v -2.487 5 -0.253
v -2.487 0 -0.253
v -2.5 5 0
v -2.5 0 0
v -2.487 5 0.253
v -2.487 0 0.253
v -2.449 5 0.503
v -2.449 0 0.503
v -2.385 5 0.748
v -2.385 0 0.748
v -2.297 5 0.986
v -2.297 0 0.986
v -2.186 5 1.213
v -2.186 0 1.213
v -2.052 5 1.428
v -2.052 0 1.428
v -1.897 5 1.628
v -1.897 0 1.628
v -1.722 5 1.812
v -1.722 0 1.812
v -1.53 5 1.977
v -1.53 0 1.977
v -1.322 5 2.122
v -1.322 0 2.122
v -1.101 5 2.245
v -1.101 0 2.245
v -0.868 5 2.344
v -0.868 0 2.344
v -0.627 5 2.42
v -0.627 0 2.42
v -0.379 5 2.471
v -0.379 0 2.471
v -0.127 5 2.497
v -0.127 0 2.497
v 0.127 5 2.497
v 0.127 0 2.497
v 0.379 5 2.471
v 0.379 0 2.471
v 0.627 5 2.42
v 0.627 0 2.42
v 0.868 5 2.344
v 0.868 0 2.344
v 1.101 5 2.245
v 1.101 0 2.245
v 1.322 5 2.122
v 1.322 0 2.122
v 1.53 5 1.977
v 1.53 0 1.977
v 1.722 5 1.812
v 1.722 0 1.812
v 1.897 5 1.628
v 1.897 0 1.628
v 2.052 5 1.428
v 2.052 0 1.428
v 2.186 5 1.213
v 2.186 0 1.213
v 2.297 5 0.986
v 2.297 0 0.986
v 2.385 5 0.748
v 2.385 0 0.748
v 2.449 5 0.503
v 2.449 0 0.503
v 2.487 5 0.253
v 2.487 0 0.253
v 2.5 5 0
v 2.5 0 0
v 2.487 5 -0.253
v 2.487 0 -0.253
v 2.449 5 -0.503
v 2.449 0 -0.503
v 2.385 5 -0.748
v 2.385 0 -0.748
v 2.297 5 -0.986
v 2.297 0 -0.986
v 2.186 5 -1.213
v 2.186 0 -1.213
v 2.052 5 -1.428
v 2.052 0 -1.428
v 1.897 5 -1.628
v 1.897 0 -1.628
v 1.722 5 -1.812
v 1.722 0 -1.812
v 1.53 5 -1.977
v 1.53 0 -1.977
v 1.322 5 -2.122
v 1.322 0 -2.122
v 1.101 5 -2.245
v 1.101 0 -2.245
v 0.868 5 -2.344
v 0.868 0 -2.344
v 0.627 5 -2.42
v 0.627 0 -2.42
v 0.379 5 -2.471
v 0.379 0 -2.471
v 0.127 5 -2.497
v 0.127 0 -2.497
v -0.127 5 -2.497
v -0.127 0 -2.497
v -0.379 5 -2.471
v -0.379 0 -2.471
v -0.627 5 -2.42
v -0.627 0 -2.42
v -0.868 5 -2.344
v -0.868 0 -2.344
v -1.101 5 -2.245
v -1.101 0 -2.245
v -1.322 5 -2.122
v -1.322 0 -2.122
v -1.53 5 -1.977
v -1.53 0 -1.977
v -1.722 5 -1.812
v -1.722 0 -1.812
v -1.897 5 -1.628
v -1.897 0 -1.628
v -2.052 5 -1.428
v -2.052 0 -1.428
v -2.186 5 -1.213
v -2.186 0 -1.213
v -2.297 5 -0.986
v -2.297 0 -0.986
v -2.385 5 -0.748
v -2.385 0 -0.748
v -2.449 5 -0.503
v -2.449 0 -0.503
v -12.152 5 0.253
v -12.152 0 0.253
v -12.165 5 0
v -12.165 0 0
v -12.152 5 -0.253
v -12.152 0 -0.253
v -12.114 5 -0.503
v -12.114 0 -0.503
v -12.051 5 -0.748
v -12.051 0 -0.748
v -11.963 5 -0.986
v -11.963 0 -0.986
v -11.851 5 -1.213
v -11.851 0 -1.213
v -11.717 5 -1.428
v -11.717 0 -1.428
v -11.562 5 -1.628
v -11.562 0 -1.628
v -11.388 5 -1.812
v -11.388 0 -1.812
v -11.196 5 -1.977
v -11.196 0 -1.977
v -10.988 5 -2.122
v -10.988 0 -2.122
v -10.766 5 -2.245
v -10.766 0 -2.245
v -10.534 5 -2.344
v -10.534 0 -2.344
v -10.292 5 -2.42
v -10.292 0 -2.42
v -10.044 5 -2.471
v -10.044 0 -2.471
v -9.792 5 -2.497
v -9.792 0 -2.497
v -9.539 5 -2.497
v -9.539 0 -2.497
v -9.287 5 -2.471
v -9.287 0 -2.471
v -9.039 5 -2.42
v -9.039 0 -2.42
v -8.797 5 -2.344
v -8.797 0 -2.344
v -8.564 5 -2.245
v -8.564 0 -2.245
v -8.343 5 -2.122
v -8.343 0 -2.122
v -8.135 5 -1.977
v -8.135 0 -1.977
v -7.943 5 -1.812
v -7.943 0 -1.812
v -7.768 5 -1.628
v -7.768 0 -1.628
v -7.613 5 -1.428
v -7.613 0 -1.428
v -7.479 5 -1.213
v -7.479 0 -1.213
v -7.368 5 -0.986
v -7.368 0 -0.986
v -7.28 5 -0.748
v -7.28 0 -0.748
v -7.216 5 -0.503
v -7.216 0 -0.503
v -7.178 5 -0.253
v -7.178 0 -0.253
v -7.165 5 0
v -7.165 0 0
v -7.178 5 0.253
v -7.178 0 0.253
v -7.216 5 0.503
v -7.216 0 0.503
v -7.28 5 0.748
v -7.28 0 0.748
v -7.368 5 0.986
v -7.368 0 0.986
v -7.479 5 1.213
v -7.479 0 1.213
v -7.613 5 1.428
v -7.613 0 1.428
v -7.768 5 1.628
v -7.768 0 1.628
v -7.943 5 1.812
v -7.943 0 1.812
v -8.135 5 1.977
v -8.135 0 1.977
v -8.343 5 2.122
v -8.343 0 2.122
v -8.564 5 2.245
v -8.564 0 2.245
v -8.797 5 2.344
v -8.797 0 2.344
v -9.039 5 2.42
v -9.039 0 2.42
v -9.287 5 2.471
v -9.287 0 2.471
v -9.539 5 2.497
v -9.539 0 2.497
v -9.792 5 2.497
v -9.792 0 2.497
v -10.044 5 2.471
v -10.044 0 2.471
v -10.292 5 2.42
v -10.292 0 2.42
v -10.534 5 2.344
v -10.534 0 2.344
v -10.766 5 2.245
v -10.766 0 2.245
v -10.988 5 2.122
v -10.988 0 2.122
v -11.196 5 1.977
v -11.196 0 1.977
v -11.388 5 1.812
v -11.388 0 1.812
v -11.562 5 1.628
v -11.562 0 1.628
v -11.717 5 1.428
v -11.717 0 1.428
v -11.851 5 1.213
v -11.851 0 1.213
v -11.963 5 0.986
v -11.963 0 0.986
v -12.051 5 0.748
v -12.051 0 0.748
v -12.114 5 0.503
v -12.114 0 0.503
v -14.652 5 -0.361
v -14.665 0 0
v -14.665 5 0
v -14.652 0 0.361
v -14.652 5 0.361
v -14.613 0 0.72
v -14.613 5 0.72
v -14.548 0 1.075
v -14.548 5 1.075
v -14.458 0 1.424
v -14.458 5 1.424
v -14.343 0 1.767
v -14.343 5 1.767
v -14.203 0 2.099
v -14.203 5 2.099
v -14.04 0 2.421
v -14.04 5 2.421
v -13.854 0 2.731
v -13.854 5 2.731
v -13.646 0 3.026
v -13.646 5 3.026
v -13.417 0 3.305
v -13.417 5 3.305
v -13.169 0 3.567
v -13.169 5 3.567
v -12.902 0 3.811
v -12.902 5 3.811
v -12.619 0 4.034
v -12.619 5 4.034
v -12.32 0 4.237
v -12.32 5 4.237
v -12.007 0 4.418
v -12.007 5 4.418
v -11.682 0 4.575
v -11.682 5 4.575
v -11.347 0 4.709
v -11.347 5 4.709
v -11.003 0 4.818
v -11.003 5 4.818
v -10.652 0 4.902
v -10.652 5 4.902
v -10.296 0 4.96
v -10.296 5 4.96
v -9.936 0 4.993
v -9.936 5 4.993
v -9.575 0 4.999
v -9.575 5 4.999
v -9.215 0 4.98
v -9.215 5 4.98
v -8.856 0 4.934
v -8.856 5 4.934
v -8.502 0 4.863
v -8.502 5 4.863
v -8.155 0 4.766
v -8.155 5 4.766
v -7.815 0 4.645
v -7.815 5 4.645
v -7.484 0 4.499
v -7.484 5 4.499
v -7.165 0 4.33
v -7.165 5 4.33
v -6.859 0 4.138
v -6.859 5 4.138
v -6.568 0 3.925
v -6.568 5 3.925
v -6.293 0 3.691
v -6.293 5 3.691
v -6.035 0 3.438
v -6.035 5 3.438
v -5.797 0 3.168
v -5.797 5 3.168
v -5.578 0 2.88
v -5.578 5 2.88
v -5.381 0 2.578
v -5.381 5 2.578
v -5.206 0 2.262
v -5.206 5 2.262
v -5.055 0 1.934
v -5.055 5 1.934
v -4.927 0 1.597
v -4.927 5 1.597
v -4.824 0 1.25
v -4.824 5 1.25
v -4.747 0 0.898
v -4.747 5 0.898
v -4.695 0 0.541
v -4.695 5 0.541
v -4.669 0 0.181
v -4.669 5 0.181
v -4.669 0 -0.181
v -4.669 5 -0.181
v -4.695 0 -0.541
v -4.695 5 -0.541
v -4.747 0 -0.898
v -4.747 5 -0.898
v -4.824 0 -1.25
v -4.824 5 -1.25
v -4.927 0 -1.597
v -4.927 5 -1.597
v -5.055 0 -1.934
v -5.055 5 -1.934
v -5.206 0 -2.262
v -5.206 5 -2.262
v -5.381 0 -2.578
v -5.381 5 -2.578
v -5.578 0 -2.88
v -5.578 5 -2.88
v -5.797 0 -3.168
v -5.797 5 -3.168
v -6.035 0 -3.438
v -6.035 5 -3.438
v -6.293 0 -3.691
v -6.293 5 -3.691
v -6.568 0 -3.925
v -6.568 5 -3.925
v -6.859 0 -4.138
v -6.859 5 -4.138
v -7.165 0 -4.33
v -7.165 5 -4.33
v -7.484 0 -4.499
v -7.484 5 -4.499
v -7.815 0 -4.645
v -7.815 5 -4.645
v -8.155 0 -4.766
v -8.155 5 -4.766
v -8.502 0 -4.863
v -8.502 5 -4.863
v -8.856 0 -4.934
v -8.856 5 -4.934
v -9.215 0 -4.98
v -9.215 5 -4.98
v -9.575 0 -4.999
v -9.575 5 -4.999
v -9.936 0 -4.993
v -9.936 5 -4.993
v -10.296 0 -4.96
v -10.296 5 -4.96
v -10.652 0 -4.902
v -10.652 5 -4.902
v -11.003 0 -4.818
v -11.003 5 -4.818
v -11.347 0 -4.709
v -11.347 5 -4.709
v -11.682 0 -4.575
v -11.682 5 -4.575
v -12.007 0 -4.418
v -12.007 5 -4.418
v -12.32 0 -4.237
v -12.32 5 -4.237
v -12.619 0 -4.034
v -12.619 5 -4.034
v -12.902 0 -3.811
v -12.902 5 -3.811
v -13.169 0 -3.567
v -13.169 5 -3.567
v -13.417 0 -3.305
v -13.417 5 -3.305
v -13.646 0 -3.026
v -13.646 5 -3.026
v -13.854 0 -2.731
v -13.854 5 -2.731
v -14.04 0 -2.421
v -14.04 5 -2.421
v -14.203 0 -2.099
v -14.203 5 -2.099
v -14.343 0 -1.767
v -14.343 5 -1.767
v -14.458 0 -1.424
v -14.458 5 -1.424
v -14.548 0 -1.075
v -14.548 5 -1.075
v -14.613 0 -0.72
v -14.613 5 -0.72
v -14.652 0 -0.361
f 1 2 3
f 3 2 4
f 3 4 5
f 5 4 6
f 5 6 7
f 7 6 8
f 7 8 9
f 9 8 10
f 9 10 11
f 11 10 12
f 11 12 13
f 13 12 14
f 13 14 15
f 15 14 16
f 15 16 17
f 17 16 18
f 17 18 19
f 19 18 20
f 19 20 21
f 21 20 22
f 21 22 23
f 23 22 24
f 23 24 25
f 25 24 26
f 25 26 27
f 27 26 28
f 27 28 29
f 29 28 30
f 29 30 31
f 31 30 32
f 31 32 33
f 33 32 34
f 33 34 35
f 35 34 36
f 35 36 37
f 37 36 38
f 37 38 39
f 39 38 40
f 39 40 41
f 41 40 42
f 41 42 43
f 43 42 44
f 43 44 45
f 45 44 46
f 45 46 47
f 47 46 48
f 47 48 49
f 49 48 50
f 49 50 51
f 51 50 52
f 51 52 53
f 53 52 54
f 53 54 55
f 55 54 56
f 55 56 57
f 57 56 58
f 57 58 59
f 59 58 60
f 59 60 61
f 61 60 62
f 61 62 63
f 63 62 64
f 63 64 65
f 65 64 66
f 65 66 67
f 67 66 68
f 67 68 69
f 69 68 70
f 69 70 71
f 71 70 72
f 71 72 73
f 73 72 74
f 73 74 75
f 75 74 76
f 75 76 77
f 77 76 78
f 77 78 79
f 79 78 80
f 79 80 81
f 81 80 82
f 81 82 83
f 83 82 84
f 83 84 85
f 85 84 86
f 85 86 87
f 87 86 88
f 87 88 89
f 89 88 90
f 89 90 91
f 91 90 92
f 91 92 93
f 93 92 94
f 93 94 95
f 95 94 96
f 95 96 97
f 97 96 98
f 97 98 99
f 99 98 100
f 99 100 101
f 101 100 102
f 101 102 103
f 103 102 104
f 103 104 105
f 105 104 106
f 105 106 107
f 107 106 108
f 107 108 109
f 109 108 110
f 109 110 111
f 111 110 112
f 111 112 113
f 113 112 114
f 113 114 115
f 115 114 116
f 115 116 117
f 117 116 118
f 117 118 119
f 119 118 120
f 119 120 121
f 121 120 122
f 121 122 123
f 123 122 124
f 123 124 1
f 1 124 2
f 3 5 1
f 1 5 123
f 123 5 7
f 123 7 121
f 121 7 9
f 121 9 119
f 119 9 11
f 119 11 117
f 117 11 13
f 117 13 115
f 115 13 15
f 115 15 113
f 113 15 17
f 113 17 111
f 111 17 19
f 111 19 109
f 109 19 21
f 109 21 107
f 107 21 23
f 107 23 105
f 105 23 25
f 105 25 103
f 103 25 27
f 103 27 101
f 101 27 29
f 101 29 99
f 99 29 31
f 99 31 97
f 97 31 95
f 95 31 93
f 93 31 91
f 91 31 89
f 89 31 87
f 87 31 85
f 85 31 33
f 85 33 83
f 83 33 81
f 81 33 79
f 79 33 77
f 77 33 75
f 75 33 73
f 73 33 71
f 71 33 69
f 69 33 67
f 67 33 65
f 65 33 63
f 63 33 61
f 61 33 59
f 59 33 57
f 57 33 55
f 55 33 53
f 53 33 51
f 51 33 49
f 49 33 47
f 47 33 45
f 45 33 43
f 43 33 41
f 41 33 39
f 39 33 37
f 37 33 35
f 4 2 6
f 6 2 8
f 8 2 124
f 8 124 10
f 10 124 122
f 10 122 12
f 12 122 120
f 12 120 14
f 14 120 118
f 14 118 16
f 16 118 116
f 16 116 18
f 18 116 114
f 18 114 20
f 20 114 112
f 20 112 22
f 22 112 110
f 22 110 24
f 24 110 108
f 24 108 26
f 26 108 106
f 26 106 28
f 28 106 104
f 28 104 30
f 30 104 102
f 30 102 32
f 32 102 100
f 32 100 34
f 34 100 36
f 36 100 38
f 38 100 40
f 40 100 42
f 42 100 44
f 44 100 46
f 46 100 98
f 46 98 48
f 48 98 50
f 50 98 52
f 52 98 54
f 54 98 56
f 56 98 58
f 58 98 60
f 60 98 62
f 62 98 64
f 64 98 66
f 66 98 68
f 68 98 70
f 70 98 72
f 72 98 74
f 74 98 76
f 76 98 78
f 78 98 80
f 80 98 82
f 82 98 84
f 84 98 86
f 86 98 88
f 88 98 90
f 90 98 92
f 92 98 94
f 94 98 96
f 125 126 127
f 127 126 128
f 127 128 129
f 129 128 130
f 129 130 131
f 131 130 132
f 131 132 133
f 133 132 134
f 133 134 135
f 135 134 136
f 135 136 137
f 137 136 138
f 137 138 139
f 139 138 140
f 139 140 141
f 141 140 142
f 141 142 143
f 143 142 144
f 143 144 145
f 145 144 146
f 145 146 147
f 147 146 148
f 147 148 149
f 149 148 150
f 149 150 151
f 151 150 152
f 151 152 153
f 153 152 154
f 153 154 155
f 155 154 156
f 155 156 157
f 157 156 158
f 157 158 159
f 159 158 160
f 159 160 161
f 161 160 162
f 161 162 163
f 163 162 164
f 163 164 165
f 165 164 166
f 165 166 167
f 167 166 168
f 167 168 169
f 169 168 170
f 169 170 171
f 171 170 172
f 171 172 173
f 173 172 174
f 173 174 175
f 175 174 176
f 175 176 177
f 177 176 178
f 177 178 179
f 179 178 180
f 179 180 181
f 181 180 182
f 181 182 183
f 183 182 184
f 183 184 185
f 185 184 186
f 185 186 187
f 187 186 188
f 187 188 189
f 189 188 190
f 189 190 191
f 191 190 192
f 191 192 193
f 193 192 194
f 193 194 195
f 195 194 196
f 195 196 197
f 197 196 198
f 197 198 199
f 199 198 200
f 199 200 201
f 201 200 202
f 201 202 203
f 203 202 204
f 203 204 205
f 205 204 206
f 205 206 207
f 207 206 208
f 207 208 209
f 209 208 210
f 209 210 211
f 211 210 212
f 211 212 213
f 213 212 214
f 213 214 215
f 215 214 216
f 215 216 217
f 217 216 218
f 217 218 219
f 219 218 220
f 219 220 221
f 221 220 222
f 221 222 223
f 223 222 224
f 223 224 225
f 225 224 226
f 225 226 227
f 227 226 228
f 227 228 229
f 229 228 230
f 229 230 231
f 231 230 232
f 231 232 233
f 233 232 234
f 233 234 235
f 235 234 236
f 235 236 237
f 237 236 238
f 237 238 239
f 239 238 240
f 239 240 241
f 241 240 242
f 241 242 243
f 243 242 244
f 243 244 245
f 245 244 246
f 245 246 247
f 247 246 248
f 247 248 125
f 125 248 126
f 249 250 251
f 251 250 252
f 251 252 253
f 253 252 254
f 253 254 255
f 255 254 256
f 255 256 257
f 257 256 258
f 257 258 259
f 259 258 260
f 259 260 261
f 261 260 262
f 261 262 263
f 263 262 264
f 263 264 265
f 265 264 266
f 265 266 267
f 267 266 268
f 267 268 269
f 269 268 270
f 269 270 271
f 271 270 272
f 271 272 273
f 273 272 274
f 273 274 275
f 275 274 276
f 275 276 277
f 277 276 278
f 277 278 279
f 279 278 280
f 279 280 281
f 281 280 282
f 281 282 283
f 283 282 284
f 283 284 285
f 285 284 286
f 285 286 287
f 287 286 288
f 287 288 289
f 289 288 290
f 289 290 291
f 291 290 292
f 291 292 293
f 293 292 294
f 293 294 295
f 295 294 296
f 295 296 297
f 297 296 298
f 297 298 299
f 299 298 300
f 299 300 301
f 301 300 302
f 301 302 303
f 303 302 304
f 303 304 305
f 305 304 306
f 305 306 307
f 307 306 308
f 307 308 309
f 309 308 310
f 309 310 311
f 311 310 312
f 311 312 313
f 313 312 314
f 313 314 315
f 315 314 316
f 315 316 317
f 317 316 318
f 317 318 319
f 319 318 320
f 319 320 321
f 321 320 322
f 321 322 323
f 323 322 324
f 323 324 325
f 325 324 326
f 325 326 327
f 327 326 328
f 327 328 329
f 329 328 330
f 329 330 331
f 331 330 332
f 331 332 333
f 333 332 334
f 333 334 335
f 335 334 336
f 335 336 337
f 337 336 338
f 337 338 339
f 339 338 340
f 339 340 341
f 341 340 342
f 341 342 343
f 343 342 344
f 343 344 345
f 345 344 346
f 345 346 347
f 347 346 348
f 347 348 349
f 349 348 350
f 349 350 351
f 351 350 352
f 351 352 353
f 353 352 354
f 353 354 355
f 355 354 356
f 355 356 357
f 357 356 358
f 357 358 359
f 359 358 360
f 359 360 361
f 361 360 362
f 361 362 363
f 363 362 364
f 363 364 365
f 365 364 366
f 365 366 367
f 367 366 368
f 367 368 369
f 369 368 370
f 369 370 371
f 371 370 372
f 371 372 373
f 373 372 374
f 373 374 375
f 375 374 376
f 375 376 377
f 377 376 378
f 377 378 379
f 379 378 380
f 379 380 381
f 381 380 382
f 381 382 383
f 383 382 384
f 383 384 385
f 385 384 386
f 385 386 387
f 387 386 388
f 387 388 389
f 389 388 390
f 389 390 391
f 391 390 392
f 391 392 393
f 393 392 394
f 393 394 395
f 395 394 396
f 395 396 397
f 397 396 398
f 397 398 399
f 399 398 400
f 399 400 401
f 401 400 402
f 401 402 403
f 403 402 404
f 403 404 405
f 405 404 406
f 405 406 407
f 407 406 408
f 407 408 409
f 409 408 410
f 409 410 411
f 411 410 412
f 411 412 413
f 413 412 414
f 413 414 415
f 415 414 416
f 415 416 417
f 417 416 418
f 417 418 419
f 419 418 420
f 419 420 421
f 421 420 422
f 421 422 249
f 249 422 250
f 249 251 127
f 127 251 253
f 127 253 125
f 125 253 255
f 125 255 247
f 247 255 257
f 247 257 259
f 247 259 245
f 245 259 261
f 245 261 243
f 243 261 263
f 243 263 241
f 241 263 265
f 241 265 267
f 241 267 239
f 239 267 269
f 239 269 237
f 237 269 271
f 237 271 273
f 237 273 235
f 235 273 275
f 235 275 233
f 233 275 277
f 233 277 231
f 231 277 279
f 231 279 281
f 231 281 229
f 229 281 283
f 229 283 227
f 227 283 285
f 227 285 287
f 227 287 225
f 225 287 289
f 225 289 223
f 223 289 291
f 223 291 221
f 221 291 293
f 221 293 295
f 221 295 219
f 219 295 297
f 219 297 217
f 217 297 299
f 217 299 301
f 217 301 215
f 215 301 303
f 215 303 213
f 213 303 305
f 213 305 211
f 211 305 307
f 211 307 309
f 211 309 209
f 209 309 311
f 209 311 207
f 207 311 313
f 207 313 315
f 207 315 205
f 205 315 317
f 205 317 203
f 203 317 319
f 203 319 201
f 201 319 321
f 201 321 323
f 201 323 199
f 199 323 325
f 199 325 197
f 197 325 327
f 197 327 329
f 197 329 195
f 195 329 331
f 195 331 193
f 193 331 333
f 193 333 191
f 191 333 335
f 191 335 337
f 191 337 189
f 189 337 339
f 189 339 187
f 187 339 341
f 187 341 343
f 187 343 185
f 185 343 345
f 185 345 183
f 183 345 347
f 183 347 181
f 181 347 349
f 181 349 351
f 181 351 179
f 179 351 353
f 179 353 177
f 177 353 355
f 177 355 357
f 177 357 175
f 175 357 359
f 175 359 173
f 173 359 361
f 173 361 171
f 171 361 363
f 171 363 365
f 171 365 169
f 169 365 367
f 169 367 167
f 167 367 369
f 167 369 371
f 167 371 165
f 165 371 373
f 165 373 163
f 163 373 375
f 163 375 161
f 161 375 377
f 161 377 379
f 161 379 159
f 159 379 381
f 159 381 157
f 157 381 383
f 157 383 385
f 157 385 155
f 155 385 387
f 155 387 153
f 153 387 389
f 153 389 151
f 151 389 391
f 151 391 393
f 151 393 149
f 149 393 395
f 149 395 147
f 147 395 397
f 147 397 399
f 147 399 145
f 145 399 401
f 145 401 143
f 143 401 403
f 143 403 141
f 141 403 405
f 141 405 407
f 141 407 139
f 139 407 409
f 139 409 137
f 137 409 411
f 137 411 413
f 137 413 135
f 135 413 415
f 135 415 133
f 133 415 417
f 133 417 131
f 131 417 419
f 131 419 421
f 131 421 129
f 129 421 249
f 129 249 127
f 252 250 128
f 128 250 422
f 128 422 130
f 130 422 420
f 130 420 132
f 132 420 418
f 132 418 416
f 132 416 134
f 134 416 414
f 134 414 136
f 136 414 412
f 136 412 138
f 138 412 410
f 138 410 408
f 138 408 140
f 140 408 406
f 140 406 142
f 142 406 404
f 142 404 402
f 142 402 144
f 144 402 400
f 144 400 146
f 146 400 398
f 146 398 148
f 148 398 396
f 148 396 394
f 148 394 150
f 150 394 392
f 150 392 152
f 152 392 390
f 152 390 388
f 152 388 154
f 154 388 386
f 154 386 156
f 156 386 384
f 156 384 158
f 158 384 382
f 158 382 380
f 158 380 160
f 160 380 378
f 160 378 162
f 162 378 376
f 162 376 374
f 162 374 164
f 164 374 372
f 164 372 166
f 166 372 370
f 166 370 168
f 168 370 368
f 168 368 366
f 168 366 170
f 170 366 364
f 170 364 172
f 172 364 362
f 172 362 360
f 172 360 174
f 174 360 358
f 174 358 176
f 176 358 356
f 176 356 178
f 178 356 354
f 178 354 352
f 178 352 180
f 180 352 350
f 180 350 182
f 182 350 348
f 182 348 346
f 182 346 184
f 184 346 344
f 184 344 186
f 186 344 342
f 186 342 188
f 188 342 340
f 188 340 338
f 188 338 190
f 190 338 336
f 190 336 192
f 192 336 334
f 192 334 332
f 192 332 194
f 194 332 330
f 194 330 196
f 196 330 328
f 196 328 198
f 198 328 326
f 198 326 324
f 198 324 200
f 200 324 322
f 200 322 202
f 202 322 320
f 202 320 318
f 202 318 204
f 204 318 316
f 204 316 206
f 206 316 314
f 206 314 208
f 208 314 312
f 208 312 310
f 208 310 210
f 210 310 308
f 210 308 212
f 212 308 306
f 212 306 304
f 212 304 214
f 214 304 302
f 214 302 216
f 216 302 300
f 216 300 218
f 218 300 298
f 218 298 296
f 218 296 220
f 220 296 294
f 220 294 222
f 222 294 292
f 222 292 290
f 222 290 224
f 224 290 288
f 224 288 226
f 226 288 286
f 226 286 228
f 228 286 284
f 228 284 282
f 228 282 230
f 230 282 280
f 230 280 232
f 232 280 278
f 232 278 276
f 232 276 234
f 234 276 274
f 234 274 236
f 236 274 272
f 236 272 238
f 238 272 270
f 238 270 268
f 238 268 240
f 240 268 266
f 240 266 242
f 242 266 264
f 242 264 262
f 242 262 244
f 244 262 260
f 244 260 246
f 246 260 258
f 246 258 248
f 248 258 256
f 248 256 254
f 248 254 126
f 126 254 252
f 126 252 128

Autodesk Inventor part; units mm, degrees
ref_plane "YZ Plane" through (0, 0, 0) normal (1, 0, 0) x (0, 1, 0)
ref_plane "XZ Plane" through (0, 0, 0) normal (0, 1, 0) x (-1, 0, 0)
ref_plane "XY Plane" through (0, 0, 0) normal (0, 0, 1) x (1, 0, 0)
sketch "Sketch1" plane through (0, 0, 0) normal (0, 1, 0) x (-1, 0, 0)
  circle A0 centre (0, 0) radius 2.5
  circle A1 centre (9.6653, 0) radius 2.5
  circle A2 centre (9.6653, 0) radius 5
  dimension "d0" = 5
  dimension "d1" = 5
  dimension "d2" = 10
  dimension "d3" = 9.6653
extrude "Extrusion1" add sketch "Sketch1" along normal blind 5
